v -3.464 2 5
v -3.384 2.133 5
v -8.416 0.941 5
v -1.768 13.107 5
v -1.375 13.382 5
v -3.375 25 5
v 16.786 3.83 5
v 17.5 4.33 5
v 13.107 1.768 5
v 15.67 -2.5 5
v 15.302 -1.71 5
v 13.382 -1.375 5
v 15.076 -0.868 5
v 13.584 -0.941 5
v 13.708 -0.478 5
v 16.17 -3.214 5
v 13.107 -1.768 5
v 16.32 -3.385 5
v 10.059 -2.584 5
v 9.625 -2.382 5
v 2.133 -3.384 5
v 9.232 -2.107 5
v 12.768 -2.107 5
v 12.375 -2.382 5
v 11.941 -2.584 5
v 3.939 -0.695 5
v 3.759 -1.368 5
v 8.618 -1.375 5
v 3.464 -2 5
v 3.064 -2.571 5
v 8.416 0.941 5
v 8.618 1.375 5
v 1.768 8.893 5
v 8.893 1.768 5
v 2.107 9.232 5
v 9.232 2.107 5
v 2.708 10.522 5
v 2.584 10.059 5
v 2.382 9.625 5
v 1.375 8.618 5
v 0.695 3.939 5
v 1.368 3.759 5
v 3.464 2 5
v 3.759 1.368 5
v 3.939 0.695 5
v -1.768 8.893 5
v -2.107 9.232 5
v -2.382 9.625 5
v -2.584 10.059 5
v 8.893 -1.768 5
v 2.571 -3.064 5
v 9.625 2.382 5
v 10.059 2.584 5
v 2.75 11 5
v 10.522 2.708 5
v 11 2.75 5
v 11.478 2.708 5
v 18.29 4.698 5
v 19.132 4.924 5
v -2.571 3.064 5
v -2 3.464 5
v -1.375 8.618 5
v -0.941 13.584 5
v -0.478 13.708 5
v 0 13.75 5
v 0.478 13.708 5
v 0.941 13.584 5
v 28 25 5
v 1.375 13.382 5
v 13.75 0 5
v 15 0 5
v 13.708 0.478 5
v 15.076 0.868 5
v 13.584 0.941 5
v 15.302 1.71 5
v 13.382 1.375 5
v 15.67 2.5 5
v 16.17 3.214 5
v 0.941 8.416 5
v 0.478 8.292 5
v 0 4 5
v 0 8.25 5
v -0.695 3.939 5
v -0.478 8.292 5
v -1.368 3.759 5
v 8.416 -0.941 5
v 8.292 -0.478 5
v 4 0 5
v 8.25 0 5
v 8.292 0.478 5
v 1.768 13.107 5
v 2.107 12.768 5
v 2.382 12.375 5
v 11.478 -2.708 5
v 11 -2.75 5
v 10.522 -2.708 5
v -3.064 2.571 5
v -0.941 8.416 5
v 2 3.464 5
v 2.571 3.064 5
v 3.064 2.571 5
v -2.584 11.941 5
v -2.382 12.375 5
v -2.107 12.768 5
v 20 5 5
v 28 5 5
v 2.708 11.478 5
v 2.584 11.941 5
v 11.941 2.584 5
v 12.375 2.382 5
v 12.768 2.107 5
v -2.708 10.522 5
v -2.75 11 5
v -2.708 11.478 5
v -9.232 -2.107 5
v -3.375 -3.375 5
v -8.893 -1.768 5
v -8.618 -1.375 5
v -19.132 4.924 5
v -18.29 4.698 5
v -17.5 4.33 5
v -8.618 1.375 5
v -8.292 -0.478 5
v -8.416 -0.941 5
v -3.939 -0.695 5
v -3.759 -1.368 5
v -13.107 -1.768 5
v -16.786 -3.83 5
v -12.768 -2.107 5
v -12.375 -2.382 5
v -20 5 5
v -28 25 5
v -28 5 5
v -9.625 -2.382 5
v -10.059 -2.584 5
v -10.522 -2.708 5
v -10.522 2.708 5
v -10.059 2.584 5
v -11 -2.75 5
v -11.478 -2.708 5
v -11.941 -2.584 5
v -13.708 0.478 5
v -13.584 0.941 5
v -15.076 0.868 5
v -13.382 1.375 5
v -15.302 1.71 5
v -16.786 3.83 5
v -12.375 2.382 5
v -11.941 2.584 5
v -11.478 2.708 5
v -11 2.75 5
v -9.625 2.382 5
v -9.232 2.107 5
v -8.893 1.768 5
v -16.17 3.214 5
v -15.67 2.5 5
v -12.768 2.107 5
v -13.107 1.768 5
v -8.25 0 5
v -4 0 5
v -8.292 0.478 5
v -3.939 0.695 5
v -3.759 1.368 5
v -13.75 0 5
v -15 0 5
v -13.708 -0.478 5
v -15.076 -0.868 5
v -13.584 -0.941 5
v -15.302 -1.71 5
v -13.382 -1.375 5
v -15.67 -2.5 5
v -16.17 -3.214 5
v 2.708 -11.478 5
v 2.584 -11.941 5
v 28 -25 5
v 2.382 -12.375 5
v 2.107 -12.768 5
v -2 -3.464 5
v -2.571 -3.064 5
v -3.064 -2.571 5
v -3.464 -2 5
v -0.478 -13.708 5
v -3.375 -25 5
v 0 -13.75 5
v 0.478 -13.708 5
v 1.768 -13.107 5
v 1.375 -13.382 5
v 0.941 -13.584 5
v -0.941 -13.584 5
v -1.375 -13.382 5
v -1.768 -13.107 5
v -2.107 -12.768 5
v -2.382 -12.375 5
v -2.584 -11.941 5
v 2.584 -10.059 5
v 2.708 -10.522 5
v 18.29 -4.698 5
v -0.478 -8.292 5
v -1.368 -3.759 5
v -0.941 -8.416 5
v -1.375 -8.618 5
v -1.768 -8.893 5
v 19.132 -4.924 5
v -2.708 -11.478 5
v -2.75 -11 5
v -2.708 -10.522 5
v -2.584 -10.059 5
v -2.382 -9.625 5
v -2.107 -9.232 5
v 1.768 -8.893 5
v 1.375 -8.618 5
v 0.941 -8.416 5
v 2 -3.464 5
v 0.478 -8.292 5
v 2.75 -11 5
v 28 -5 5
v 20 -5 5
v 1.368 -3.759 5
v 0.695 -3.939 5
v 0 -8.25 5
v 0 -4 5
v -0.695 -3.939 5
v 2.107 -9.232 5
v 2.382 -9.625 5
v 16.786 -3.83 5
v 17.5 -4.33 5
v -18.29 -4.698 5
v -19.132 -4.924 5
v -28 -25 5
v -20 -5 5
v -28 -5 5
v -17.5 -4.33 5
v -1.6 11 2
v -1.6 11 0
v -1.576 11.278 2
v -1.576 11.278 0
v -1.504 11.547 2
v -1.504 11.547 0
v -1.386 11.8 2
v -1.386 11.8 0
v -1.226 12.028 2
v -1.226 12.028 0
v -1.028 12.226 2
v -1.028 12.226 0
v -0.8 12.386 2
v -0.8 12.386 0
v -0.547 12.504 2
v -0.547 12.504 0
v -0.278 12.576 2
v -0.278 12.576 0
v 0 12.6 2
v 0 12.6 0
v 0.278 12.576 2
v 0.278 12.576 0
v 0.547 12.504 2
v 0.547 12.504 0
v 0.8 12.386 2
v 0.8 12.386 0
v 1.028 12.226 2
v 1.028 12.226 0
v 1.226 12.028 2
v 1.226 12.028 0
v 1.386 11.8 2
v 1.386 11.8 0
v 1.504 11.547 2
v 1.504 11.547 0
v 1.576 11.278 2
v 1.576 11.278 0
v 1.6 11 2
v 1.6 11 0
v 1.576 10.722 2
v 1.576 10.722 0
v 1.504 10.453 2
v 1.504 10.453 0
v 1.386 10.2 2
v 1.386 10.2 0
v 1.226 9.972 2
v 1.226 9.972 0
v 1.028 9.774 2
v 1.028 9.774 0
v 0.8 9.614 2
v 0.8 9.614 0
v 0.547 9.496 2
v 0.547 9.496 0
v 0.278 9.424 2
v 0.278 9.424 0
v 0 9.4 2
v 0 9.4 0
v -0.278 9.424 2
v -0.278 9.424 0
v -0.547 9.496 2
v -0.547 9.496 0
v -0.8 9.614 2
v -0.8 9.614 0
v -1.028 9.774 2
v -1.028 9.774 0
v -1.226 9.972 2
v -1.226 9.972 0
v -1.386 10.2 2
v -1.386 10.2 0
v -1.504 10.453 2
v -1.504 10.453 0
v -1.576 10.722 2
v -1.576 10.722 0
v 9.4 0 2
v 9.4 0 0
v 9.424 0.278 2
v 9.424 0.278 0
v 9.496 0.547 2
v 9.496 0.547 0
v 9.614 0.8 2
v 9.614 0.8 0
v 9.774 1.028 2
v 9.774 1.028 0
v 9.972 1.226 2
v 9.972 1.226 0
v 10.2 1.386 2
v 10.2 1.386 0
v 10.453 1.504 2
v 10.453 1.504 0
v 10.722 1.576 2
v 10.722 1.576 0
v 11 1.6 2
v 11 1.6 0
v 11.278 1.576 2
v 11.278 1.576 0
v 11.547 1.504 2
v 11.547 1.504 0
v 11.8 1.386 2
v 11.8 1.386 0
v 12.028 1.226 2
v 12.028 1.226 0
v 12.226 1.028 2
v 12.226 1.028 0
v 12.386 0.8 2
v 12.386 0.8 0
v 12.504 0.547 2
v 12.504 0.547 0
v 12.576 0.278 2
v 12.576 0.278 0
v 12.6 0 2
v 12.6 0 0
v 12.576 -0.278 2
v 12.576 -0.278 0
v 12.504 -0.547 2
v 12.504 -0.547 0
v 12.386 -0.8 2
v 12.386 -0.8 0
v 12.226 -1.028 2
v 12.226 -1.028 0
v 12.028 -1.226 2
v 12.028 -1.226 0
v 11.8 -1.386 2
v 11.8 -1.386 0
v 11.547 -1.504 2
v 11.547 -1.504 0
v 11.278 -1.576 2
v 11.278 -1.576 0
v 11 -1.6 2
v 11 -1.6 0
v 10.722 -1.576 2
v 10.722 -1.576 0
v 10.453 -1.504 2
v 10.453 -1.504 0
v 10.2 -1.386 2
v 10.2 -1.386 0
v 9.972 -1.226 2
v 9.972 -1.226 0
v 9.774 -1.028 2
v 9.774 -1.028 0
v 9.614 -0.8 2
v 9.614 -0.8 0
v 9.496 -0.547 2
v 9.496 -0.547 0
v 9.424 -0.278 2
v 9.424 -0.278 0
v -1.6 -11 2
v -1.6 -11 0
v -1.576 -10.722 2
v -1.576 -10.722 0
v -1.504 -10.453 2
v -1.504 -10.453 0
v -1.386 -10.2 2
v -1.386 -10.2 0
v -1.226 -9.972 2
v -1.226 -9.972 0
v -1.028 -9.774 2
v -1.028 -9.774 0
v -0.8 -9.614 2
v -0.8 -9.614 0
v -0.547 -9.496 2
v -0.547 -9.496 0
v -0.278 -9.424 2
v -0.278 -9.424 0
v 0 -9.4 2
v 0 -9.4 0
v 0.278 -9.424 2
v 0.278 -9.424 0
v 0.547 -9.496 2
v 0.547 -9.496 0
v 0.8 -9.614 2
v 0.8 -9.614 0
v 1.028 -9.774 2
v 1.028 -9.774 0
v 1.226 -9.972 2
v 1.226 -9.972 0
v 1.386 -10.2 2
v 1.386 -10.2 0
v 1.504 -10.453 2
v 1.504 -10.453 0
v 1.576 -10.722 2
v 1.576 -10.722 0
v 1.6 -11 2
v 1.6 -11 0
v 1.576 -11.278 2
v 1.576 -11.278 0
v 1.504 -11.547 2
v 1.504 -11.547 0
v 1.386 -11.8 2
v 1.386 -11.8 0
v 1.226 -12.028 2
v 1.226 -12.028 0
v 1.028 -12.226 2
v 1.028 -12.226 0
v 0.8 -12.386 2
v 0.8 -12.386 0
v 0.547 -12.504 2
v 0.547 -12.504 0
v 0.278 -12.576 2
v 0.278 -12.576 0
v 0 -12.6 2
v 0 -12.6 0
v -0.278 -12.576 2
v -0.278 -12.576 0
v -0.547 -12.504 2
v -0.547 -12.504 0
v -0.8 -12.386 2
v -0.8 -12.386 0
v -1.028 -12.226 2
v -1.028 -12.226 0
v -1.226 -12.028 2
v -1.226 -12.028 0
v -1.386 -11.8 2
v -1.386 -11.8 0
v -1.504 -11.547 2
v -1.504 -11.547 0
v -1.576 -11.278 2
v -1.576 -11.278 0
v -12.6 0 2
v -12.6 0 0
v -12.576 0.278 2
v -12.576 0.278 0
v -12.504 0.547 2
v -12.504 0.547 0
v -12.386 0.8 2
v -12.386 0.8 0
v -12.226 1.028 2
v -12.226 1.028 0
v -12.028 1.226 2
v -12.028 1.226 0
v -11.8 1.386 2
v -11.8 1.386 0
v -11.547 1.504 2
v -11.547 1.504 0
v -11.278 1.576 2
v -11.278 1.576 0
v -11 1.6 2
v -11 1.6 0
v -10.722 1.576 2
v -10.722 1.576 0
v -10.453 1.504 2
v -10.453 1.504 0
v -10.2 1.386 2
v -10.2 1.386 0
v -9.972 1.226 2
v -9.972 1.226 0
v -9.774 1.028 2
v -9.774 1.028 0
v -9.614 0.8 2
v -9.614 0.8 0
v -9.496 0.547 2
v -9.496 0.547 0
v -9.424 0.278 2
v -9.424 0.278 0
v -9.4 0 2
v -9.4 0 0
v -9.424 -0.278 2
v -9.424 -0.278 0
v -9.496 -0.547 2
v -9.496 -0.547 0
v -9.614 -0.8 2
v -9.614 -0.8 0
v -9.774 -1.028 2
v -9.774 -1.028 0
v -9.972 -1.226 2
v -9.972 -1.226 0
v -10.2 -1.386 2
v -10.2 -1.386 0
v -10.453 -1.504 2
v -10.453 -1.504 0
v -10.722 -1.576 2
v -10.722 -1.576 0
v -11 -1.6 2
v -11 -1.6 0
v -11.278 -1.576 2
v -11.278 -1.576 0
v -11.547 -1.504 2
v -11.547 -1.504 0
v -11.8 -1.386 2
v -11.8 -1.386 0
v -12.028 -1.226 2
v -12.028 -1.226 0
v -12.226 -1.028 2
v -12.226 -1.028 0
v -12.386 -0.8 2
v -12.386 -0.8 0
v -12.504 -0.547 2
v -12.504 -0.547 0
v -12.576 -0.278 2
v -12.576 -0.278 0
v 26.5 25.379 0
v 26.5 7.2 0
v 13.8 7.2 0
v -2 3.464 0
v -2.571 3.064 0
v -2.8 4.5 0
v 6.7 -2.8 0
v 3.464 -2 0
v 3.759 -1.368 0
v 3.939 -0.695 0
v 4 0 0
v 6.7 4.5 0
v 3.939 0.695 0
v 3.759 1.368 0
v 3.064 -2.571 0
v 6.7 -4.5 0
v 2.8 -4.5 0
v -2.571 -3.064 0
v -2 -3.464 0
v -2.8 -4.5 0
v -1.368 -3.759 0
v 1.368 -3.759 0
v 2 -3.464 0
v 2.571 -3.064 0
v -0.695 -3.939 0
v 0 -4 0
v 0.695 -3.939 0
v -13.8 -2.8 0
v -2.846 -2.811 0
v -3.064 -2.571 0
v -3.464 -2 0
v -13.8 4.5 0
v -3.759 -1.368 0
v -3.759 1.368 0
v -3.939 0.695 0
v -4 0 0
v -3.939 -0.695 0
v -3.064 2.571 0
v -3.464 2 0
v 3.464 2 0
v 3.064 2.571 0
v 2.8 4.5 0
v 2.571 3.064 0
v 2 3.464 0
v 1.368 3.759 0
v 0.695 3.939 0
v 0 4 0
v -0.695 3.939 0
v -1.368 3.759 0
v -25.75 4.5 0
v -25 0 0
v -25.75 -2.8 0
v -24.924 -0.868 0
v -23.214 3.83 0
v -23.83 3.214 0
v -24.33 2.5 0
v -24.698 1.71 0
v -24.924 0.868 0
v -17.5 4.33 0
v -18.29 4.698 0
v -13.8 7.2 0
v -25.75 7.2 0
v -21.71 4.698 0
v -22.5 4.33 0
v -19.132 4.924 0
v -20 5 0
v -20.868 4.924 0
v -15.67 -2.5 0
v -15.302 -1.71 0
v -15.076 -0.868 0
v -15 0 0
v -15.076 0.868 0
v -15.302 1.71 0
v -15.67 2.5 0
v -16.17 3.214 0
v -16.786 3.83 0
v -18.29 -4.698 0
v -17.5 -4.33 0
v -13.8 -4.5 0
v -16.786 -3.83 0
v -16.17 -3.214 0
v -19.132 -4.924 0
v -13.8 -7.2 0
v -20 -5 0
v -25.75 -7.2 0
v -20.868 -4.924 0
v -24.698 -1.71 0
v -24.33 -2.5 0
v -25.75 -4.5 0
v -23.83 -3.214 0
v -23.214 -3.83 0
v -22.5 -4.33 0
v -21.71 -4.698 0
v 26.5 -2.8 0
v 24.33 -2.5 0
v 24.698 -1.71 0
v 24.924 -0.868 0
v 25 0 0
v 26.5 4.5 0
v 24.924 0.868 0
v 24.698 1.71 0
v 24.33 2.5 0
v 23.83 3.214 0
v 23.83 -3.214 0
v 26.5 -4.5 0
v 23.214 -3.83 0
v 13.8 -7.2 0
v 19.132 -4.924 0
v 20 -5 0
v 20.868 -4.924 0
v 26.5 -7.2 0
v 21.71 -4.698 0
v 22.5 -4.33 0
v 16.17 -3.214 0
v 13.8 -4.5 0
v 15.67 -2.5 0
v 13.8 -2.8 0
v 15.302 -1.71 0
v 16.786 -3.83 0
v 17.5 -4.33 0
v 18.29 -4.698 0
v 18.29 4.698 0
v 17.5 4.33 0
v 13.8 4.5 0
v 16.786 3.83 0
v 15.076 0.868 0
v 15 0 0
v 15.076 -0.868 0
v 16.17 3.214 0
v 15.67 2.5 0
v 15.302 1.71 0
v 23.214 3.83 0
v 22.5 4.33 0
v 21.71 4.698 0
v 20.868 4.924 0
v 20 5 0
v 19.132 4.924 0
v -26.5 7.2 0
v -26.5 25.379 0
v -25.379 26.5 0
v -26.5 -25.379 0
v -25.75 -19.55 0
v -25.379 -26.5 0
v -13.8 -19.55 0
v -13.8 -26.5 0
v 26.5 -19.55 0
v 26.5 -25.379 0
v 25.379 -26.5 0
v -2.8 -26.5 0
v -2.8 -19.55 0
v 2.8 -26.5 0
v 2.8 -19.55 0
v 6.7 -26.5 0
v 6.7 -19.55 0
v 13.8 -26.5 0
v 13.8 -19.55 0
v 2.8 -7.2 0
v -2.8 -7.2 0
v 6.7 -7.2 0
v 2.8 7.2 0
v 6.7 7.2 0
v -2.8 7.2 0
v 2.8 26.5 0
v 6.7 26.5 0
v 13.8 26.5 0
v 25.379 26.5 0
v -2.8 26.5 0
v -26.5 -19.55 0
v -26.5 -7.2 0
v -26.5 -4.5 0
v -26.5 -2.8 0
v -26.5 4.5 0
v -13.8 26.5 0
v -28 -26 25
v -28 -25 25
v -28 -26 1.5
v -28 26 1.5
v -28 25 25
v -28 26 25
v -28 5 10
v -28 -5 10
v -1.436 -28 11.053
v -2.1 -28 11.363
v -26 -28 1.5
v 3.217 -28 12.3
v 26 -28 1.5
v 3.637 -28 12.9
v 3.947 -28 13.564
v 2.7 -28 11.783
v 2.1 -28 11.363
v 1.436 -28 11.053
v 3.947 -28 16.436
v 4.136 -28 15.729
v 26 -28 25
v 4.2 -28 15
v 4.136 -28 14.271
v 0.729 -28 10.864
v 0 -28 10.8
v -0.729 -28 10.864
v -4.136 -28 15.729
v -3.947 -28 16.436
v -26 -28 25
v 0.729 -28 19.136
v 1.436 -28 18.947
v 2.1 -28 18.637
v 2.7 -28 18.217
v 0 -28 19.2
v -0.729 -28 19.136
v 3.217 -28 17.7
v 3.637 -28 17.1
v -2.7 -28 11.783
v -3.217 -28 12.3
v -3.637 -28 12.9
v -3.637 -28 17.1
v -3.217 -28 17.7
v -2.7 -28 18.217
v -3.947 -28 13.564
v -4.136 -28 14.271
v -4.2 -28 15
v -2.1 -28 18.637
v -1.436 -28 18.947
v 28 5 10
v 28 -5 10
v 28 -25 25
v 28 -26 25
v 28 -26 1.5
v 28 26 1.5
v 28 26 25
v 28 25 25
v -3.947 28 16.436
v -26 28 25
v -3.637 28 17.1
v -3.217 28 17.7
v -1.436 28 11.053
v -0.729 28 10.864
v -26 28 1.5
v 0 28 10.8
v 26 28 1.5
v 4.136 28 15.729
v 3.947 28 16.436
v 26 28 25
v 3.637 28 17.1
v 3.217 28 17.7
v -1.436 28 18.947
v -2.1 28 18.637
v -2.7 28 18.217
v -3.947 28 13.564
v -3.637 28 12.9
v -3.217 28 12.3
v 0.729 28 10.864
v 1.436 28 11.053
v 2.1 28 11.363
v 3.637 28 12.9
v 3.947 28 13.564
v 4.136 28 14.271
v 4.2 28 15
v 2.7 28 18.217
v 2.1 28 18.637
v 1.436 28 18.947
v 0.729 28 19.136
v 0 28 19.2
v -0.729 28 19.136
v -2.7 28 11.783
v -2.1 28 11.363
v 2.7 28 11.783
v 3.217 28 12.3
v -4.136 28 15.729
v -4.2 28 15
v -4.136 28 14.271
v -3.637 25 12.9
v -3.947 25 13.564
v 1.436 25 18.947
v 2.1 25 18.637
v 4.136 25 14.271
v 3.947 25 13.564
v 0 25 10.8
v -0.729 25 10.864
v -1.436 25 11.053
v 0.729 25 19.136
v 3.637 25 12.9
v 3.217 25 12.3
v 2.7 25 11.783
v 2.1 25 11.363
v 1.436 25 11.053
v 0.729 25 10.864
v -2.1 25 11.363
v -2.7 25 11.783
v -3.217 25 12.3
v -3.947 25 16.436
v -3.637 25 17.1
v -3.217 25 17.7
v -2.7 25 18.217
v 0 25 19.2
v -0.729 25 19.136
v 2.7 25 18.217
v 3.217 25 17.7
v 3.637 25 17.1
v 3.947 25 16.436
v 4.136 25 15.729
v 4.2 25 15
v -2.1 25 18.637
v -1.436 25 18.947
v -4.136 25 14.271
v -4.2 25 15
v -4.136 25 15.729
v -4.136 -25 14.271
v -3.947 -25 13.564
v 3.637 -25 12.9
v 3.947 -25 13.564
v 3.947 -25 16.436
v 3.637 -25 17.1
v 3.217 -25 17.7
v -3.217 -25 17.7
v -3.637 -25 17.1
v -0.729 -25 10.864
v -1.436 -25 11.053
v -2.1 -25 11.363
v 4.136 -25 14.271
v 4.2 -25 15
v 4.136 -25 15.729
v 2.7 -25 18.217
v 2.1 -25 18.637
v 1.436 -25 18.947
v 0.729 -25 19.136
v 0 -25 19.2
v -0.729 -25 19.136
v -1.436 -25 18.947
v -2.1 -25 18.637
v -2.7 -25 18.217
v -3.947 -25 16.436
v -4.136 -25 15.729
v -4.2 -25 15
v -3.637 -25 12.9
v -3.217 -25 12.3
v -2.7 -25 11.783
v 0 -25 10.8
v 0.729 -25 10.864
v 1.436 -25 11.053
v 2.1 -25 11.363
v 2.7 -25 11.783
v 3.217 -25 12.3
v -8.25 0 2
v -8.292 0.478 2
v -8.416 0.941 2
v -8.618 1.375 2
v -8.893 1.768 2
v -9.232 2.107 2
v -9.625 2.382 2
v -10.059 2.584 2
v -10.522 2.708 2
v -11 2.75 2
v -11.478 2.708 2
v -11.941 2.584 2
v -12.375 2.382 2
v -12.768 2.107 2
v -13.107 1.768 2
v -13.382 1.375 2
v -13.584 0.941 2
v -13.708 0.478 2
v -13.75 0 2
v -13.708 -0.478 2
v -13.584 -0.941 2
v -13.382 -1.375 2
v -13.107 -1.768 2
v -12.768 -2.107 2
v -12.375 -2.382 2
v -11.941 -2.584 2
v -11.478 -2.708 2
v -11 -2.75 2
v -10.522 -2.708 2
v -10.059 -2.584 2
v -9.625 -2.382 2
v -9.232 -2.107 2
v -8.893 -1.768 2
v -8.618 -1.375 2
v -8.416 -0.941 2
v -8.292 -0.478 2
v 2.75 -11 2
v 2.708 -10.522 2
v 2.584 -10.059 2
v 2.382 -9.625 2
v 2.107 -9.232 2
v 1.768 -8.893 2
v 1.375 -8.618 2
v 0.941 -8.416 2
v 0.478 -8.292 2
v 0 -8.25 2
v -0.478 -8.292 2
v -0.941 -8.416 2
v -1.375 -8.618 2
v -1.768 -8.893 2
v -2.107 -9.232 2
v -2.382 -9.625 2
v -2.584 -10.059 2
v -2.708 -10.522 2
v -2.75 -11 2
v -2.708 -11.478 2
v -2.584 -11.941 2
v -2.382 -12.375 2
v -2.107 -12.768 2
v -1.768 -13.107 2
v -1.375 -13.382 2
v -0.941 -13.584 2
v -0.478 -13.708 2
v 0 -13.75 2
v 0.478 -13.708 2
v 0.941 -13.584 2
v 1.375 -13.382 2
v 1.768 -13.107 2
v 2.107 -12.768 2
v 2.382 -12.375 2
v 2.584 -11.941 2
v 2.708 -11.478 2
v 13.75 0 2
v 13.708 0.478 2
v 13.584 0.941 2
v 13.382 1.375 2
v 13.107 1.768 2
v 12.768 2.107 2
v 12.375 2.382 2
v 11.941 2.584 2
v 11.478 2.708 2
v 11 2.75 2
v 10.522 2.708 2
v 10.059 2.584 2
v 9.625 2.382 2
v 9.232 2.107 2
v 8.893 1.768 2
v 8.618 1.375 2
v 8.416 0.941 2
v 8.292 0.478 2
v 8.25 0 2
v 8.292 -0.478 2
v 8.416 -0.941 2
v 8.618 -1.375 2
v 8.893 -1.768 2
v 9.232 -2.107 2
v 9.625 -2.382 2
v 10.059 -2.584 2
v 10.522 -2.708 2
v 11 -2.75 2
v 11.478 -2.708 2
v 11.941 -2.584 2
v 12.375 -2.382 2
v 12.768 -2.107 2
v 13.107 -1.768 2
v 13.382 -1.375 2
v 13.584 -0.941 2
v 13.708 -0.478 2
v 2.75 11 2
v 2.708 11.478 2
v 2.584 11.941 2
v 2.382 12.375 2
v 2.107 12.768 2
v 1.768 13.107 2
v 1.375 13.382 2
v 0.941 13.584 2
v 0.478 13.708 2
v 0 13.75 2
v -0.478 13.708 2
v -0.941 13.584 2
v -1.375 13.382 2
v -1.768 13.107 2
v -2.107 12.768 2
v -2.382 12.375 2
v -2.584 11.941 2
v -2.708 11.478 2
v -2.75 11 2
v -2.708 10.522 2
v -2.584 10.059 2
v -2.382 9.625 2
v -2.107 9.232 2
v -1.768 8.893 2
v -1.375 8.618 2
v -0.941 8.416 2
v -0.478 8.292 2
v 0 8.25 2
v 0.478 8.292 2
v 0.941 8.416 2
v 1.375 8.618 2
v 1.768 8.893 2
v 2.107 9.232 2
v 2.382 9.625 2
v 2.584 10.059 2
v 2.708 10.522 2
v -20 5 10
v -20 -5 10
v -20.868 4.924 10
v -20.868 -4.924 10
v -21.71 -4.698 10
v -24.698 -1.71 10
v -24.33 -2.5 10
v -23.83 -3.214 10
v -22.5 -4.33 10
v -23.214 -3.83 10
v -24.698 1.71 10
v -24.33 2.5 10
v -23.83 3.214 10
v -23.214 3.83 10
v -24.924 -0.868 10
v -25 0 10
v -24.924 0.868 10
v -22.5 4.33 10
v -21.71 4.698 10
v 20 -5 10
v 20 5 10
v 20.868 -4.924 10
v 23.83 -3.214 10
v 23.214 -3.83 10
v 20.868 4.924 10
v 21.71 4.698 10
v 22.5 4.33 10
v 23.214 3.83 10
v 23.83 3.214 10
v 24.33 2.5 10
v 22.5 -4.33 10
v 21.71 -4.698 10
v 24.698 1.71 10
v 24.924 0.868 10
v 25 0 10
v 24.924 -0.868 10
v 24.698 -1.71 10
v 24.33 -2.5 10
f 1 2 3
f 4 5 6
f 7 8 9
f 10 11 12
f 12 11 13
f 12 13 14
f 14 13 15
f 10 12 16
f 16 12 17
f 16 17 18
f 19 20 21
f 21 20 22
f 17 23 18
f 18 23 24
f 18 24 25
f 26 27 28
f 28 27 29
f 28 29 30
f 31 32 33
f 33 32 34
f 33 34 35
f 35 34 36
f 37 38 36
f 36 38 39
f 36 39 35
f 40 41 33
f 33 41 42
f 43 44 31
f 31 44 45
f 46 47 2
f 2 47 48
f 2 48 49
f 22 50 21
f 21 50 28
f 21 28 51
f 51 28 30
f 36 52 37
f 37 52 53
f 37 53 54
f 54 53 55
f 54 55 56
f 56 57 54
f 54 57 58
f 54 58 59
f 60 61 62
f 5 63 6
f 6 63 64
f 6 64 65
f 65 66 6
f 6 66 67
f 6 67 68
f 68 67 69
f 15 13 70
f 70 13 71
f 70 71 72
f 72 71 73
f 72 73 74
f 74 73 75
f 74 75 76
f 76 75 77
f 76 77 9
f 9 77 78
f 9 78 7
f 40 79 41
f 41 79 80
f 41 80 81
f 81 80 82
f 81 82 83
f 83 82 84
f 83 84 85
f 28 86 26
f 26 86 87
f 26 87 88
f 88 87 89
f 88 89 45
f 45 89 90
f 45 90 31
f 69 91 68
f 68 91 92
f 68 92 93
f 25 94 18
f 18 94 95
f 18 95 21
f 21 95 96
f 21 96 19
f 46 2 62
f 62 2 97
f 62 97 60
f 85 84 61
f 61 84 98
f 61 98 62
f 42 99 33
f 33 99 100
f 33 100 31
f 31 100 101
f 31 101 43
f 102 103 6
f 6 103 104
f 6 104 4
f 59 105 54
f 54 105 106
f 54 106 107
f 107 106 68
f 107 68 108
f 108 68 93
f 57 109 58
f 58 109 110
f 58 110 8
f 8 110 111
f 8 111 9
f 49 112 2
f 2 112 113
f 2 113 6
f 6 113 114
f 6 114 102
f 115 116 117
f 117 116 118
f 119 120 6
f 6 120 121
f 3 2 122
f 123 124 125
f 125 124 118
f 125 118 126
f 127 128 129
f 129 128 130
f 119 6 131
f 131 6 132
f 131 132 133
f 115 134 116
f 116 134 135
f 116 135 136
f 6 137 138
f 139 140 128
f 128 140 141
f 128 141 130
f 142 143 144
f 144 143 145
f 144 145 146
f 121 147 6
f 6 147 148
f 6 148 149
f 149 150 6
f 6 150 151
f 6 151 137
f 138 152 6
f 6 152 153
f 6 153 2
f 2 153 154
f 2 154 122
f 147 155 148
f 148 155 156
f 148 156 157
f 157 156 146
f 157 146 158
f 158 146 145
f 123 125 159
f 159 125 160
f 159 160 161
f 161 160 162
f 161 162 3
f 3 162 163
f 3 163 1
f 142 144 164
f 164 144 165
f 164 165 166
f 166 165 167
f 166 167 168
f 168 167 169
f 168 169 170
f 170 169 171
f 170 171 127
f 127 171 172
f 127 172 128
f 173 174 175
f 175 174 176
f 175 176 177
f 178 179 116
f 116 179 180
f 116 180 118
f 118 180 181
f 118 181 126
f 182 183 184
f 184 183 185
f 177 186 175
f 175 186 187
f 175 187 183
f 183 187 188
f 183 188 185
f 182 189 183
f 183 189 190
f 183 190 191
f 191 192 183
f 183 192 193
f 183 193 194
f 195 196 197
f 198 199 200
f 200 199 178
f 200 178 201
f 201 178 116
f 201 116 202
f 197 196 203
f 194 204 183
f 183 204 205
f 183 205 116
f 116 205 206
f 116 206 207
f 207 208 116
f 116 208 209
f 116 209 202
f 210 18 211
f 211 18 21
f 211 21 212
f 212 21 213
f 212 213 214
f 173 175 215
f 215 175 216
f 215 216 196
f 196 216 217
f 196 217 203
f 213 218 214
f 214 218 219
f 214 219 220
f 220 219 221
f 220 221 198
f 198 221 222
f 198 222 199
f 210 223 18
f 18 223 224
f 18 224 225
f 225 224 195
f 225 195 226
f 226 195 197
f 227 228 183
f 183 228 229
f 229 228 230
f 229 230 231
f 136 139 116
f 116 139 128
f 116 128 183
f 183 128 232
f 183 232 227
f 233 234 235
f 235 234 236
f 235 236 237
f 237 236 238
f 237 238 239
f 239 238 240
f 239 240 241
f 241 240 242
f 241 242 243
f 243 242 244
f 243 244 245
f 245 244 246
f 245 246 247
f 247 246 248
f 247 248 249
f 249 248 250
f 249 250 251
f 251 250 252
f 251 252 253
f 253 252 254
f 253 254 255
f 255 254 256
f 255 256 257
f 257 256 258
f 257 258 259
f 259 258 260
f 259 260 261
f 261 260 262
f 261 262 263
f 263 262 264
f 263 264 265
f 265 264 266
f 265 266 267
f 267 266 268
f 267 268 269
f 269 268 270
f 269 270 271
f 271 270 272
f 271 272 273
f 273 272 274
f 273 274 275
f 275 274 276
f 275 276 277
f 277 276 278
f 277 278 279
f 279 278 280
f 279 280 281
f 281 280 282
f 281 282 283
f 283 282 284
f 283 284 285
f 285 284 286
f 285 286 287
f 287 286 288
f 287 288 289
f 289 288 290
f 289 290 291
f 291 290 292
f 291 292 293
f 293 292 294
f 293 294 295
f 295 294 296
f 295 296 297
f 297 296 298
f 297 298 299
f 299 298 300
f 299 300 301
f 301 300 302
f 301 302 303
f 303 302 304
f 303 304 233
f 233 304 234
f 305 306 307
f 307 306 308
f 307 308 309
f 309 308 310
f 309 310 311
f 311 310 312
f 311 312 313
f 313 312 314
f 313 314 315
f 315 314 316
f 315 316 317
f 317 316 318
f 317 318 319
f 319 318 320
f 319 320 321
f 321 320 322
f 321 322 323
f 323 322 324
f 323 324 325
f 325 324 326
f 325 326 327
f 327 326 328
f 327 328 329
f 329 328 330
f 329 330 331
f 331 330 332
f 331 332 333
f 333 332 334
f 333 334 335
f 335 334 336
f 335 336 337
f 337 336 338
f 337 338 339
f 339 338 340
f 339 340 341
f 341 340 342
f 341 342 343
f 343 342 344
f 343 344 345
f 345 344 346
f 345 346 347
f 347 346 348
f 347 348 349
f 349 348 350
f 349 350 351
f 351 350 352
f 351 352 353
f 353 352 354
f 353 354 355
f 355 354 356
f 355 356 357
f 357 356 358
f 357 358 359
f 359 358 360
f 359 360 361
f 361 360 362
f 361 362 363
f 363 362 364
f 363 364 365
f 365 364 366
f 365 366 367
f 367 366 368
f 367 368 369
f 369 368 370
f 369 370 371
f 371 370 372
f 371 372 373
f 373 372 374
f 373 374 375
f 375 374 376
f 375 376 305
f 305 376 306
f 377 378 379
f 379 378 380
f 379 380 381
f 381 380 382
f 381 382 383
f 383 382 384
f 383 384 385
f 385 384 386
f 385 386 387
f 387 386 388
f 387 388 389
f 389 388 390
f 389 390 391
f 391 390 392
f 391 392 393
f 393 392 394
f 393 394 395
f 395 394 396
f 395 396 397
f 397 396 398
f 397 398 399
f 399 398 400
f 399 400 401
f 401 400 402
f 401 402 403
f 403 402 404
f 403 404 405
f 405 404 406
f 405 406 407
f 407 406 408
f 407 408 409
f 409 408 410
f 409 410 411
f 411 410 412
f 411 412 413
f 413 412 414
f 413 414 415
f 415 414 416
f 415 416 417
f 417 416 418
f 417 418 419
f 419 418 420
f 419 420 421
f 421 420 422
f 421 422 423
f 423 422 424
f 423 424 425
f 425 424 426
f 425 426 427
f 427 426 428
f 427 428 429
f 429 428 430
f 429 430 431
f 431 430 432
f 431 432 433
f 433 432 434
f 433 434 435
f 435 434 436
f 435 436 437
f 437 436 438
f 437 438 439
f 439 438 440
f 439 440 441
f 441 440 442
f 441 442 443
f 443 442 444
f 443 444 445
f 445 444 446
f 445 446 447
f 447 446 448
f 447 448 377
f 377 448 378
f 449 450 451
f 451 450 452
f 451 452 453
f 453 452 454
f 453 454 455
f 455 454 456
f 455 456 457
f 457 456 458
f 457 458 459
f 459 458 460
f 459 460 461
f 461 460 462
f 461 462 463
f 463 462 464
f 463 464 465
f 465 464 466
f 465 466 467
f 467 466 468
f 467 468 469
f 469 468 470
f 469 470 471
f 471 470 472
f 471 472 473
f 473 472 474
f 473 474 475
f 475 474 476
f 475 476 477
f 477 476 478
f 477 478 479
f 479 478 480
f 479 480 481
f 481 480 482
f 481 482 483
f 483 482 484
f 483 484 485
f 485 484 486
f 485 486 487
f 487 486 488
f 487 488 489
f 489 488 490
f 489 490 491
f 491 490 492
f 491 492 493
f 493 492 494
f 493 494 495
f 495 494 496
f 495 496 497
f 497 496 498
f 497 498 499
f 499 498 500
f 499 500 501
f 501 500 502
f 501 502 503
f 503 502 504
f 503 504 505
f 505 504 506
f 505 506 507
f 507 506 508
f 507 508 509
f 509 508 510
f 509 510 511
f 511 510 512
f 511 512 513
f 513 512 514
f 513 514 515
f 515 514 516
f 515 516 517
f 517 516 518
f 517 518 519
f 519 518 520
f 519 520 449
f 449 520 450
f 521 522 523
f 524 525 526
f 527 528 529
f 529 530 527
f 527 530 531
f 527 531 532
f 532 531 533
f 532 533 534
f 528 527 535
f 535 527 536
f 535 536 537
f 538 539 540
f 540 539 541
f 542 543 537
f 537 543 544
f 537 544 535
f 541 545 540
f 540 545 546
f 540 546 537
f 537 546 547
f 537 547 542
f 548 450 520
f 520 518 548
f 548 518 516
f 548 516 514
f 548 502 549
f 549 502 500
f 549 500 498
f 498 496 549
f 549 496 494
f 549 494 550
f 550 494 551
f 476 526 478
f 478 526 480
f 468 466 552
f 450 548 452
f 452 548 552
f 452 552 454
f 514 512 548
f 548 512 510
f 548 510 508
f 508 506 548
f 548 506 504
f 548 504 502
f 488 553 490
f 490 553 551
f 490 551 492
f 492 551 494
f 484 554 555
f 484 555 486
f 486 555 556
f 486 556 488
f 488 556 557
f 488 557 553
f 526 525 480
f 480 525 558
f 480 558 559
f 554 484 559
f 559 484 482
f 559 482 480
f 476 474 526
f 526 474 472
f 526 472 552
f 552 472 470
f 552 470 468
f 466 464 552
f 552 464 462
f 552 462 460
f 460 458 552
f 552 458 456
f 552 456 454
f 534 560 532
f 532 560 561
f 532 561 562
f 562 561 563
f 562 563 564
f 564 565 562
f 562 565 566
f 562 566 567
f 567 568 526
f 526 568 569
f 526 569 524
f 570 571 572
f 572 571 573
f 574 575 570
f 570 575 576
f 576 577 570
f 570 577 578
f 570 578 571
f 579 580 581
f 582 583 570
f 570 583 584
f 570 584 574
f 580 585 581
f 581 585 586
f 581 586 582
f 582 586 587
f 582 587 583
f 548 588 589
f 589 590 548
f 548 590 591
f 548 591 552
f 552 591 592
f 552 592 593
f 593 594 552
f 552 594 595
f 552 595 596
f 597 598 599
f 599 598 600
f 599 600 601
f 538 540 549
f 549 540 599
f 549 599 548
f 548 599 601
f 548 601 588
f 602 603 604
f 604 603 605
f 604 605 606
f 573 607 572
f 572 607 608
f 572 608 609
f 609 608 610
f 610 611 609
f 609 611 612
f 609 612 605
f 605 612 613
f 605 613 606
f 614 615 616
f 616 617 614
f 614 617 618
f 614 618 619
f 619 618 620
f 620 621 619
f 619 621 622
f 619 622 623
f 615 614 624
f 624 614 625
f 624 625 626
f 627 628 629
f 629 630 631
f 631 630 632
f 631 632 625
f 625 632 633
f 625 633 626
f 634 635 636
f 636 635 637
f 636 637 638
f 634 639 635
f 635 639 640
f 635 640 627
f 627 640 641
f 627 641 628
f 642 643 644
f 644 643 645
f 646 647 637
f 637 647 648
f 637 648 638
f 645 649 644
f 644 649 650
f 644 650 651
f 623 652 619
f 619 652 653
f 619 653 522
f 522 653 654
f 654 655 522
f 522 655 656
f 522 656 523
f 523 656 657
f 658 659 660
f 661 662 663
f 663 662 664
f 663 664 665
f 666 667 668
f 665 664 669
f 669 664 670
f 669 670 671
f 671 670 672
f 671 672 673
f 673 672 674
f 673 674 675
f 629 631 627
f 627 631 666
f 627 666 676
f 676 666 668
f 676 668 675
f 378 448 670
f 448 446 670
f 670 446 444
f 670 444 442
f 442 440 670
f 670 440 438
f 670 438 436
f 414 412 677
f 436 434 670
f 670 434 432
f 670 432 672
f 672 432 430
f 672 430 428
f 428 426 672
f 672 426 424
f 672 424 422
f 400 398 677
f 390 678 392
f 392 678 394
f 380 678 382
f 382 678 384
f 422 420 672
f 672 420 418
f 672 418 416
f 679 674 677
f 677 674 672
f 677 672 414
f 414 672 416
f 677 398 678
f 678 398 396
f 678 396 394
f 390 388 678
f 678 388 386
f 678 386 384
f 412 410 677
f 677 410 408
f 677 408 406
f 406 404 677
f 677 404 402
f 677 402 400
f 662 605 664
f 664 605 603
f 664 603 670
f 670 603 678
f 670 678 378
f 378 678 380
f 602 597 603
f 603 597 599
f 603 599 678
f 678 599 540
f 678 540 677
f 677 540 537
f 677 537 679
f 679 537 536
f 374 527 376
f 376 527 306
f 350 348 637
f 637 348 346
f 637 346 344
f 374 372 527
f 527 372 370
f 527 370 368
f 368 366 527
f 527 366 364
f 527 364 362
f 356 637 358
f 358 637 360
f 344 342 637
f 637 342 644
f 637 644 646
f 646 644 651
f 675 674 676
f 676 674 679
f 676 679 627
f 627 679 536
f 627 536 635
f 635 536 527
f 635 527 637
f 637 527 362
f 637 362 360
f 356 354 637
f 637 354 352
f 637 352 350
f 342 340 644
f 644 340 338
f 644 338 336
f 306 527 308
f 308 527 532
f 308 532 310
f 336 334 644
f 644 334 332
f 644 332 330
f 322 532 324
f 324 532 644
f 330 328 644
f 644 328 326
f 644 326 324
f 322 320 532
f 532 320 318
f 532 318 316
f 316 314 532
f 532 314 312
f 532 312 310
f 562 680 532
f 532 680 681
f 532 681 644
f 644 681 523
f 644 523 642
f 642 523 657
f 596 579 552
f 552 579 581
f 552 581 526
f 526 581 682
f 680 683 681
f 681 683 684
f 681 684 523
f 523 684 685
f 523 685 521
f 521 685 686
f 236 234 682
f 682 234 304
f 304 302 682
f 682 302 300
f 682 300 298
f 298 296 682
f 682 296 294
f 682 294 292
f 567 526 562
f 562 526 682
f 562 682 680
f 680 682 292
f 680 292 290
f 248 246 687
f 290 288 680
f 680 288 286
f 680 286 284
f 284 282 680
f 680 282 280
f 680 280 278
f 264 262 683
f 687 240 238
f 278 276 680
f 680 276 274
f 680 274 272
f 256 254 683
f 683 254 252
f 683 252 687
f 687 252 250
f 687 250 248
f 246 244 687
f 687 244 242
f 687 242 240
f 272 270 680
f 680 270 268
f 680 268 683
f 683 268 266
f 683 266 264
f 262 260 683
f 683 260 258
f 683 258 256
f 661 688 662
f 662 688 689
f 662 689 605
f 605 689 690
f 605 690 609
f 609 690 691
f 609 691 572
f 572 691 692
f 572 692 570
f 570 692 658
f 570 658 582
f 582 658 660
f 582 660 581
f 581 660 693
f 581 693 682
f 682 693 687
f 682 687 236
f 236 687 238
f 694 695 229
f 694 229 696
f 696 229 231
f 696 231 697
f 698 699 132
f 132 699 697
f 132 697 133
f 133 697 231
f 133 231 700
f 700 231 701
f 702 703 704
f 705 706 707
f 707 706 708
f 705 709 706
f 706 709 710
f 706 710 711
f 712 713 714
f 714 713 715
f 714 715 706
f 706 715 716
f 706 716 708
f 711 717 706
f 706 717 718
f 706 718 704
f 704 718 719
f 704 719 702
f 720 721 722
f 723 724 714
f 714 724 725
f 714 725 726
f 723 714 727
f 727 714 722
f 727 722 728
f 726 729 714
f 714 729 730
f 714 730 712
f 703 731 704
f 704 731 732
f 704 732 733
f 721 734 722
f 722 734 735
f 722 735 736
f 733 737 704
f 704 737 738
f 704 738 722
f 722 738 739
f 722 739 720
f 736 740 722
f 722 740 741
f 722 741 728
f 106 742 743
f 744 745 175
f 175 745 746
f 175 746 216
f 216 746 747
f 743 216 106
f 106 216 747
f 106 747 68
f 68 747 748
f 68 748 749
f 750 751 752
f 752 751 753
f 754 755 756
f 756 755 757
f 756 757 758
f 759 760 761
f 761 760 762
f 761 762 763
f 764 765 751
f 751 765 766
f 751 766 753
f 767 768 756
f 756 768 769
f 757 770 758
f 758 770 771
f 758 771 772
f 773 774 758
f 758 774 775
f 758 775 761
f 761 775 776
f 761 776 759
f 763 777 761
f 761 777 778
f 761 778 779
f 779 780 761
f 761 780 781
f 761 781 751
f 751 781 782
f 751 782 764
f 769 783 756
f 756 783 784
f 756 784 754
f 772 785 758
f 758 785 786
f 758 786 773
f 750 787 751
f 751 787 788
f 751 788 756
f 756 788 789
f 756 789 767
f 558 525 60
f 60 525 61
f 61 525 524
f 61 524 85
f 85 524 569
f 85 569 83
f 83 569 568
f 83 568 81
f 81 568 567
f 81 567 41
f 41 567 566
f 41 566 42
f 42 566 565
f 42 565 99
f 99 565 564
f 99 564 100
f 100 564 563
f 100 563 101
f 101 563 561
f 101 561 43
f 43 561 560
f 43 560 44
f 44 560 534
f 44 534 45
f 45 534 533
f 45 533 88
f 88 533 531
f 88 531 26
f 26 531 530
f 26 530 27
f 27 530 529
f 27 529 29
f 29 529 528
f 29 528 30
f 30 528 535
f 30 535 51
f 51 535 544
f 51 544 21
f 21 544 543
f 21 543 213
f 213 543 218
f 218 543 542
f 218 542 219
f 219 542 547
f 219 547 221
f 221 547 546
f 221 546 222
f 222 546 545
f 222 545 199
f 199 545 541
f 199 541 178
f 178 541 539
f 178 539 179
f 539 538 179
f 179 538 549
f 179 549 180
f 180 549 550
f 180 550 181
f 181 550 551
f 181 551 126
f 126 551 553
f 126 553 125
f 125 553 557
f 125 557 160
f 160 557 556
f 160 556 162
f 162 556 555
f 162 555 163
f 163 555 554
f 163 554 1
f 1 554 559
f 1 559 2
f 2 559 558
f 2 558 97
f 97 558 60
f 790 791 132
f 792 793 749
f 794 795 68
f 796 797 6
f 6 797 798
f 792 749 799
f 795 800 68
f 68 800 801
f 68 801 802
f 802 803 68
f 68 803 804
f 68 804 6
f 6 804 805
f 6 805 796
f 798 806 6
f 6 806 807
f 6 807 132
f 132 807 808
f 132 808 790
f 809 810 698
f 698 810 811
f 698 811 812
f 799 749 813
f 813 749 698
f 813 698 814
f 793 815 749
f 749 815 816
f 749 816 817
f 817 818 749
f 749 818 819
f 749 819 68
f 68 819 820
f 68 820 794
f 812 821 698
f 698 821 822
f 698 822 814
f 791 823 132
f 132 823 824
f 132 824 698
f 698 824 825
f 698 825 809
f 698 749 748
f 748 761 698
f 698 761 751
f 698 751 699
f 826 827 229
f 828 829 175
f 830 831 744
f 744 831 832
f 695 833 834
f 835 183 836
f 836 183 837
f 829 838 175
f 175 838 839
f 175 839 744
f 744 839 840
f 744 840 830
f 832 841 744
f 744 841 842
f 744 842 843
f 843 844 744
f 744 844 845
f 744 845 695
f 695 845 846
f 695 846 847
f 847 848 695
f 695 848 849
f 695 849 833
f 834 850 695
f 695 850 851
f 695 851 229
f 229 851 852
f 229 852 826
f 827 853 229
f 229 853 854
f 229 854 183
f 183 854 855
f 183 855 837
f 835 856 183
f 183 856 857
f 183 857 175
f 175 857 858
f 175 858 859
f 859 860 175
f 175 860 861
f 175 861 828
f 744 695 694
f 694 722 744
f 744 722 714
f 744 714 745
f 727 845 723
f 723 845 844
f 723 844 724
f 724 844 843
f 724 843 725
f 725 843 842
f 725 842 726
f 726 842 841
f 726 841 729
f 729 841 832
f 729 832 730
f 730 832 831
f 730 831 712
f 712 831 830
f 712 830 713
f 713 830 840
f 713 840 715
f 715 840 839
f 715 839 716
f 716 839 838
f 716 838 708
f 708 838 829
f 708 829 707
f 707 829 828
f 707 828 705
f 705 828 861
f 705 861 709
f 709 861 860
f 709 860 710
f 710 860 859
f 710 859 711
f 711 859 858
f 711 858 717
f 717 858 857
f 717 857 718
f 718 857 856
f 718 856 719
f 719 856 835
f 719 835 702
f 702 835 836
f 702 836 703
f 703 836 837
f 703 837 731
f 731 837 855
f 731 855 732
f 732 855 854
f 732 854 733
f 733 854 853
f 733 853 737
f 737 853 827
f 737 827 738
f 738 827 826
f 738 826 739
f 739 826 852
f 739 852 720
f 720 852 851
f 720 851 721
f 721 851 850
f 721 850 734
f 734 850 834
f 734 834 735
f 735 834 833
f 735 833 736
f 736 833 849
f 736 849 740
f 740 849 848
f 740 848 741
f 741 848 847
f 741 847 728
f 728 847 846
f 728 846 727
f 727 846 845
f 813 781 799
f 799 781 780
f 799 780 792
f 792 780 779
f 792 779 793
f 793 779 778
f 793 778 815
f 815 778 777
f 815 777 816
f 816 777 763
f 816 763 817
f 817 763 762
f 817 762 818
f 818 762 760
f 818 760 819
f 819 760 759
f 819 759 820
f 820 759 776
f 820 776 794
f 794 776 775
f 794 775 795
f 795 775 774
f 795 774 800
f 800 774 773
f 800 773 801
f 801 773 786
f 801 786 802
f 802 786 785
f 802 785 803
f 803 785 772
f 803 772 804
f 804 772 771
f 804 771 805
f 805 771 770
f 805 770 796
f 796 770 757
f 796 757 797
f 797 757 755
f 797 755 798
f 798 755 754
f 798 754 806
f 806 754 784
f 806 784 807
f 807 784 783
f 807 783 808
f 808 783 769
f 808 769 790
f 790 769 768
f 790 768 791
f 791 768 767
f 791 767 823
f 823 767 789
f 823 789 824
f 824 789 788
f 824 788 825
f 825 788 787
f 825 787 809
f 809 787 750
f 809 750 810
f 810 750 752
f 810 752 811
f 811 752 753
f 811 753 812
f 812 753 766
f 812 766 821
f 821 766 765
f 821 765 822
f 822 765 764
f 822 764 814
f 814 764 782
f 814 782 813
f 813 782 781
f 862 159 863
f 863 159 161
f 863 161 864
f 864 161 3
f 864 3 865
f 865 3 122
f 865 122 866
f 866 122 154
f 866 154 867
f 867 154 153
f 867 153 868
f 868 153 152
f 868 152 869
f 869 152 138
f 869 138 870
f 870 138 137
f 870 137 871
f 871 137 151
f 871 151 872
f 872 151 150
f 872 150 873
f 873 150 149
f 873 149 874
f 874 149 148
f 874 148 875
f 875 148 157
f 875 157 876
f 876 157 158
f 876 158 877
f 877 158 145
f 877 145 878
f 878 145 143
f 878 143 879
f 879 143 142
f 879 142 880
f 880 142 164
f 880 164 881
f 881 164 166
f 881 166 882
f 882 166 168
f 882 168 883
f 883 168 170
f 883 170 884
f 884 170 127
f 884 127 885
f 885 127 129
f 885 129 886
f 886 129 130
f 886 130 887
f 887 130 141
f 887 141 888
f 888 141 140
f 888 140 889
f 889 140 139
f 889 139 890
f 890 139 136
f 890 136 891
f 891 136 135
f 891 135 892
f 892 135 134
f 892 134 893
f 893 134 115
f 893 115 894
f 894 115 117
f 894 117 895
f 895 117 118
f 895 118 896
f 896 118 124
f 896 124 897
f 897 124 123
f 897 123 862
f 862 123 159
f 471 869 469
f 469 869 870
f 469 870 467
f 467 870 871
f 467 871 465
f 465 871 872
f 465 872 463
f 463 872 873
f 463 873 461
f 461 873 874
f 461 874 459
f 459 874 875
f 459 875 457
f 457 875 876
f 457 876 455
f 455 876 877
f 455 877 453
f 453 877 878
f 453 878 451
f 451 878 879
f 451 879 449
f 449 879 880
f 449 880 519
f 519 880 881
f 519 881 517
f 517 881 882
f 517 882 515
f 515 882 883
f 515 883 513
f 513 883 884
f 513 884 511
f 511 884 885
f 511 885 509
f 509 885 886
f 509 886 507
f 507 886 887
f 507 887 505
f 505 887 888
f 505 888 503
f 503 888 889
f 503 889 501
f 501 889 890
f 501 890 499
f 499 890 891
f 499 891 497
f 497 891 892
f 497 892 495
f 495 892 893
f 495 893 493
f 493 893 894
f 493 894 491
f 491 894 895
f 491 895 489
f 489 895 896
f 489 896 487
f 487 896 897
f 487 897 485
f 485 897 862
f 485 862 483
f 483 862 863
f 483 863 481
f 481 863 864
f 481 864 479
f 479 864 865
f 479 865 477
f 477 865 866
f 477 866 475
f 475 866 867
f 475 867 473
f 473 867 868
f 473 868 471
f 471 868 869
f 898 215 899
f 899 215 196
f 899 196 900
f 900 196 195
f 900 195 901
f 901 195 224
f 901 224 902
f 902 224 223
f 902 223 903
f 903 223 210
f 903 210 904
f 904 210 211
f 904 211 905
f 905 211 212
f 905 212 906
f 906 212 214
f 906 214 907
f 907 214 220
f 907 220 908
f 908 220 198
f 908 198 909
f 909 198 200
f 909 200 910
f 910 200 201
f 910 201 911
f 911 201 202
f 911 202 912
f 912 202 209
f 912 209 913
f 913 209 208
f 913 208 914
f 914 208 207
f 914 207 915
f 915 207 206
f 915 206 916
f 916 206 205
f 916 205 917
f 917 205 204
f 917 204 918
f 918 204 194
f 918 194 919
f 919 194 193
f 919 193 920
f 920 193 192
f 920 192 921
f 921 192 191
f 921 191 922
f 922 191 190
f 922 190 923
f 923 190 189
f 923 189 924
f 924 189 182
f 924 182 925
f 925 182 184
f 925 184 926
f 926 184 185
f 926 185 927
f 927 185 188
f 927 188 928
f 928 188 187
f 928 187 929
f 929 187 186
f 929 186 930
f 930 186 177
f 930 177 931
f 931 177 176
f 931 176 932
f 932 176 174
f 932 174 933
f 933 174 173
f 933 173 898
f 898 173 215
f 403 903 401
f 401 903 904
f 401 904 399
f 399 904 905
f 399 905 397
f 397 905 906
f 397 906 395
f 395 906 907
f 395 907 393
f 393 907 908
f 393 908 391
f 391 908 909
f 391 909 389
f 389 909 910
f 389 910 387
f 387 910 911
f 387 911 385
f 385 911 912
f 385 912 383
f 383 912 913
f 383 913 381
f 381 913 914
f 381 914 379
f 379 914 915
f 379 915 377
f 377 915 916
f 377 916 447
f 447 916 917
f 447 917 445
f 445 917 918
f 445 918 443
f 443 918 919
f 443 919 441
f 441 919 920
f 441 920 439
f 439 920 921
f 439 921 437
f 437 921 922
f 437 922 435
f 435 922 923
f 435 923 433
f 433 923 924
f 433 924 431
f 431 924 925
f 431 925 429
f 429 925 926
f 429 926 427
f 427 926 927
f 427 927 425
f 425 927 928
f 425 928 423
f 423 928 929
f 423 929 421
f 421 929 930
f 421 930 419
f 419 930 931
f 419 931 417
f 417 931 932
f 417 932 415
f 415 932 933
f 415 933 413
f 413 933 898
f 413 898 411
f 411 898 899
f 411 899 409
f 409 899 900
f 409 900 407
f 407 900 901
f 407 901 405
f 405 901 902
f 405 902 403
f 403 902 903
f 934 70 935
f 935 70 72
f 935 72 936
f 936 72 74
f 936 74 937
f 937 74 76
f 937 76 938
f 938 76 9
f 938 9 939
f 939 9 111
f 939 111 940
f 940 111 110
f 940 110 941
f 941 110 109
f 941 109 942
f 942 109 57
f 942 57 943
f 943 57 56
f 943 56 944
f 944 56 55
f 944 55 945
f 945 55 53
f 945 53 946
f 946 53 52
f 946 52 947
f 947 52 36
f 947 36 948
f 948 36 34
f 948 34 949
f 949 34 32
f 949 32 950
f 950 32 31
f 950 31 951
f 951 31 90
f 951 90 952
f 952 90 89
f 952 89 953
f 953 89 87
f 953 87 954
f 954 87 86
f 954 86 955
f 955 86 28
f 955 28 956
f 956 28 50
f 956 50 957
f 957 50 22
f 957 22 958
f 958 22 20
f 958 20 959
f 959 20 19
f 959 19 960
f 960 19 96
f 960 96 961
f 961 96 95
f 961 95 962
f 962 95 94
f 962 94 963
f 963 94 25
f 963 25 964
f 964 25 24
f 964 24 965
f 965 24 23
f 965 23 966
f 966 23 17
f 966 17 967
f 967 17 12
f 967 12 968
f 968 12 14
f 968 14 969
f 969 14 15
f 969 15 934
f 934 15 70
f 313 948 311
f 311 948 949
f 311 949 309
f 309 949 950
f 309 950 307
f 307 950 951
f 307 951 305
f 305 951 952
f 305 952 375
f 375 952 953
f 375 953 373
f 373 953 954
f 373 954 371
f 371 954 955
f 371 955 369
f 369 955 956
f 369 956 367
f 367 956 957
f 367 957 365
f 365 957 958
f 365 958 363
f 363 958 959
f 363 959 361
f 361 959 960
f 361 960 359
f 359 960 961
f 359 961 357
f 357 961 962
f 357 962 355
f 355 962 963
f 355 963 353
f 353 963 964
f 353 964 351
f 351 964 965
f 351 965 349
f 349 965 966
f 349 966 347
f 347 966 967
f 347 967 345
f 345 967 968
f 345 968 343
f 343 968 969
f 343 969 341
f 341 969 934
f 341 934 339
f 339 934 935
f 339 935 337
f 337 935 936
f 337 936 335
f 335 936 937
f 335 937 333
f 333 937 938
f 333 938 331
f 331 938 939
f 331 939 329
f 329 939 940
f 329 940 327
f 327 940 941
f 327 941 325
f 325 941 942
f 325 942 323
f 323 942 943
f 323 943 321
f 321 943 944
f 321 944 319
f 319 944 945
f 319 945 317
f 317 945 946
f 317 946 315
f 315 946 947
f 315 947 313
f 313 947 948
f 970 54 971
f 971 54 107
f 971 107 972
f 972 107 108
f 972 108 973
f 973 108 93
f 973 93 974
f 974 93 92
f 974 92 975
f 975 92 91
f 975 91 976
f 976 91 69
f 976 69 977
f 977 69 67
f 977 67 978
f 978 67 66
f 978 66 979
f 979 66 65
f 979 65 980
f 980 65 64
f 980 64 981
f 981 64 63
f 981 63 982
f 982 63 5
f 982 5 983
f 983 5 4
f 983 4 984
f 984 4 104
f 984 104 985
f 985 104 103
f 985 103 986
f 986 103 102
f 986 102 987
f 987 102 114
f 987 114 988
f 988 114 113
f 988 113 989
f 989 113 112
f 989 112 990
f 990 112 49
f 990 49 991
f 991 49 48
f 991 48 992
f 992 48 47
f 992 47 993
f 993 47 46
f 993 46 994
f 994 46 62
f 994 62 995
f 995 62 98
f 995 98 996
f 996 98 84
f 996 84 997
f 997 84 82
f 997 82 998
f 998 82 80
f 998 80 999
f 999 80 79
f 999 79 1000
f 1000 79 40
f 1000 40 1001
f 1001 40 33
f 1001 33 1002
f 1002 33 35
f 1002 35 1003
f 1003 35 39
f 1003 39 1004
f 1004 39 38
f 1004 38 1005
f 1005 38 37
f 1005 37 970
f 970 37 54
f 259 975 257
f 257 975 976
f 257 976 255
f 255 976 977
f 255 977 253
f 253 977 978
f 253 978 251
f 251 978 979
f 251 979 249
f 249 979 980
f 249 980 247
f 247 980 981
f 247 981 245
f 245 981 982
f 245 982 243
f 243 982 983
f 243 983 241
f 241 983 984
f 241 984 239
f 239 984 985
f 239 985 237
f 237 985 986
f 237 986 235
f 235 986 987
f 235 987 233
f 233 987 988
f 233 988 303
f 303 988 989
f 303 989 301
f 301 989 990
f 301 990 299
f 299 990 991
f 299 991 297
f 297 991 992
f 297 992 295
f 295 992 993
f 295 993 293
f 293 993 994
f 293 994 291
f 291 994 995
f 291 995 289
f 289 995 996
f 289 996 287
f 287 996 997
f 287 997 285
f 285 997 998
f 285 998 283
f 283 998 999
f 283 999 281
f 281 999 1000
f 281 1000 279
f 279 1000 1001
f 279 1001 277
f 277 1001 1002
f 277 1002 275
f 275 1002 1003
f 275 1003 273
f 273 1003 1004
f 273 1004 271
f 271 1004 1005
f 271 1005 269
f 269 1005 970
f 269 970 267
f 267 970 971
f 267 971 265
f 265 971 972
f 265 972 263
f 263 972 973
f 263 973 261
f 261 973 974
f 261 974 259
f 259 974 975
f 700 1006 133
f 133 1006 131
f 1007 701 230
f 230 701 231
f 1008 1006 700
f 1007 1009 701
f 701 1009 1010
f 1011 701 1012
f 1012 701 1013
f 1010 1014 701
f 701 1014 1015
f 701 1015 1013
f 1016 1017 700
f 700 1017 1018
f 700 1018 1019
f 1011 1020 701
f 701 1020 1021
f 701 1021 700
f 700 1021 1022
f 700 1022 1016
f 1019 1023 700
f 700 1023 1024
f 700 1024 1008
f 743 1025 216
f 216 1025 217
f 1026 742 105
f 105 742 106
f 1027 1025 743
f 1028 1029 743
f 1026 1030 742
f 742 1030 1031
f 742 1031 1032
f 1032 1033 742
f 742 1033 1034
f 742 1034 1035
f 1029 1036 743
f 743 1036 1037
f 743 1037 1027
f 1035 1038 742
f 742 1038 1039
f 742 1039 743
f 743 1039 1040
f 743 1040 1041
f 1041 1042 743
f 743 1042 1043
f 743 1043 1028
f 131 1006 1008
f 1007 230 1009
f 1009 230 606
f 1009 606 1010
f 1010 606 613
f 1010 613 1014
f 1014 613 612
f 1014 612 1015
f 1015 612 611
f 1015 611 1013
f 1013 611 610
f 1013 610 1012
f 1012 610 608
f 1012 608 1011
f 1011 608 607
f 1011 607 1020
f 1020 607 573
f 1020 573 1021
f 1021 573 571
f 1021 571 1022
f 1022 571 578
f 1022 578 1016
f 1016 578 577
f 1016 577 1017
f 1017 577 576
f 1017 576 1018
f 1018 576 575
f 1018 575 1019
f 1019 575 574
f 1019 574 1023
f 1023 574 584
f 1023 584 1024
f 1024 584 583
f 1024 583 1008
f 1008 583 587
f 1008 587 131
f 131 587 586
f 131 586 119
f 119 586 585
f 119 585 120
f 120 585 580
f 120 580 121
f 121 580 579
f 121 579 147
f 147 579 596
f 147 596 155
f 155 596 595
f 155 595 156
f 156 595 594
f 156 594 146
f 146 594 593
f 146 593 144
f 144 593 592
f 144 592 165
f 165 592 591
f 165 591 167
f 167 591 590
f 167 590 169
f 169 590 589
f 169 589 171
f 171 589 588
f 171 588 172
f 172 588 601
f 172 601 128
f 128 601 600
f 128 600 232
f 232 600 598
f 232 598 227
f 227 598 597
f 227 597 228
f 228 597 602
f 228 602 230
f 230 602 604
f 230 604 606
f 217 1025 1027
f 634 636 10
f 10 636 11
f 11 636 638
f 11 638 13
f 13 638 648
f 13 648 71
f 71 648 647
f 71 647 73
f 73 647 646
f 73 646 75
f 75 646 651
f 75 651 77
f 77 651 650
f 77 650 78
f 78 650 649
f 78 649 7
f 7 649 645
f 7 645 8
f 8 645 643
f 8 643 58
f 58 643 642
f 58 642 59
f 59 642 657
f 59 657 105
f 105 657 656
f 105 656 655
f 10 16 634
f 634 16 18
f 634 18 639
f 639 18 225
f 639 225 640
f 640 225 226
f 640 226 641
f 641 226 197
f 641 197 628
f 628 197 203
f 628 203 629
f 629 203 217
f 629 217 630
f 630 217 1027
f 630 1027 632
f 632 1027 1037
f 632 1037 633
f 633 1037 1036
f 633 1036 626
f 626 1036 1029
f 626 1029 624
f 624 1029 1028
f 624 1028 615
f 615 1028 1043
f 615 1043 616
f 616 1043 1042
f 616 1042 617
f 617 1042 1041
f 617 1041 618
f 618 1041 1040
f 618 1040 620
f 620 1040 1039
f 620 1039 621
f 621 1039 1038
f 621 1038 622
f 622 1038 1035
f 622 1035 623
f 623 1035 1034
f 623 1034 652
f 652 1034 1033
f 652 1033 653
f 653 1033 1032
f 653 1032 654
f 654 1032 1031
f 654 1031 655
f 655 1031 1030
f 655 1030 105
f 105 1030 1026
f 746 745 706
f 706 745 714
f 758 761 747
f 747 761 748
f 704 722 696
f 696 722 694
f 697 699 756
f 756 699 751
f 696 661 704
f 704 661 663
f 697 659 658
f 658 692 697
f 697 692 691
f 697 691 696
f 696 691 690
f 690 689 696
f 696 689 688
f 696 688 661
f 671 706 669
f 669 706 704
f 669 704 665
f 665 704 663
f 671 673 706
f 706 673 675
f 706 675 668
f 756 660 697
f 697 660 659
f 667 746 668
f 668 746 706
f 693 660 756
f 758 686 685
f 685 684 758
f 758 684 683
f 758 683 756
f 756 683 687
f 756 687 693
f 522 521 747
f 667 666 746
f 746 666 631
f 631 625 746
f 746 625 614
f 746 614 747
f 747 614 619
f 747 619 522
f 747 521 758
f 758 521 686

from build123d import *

# Parameters (mm, degrees)
CROQUIS1_W              = 56
CROQUIS1_H              = 56
CROQUIS1_R              = 4
CROQUIS1_R_2            = 1.6
SALIENTE_EXTRUIR1_DEPTH = 5
CROQUIS2_W              = 56
CROQUIS2_H              = 3
SALIENTE_EXTRUIR2_DEPTH = 20
CROQUIS3_R              = 4.2
CORTAR_EXTRUIR1_DEPTH   = 68.416615163
CROQUIS4_R              = 2.75
CORTAR_EXTRUIR2_DEPTH   = 3
CROQUIS7_W              = 8
CROQUIS7_H              = 10
SALIENTE_EXTRUIR3_DEPTH = 5
CROQUIS5_R              = 5
CORTAR_EXTRUIR3_DEPTH   = 47.829477896
CHAFL_N1_SIZE           = 2
CHAFL_N2_SIZE           = 1.5


with BuildPart() as part:
    # Croquis1 → Saliente-Extruir1 (new body)
    with BuildSketch(Plane.XY):
        Rectangle(CROQUIS1_W, CROQUIS1_H)
        Circle(CROQUIS1_R, mode=Mode.SUBTRACT)
        with Locations((0, 11)):
            Circle(CROQUIS1_R_2, mode=Mode.SUBTRACT)
        with Locations((11, 0)):
            Circle(CROQUIS1_R_2, mode=Mode.SUBTRACT)
        with Locations((0, -11)):
            Circle(CROQUIS1_R_2, mode=Mode.SUBTRACT)
        with Locations((-11, 0)):
            Circle(CROQUIS1_R_2, mode=Mode.SUBTRACT)
    extrude(amount=SALIENTE_EXTRUIR1_DEPTH)

    # Croquis2 → Saliente-Extruir2 (add)
    with BuildSketch(Plane.XY.offset(5)):
        with Locations((0, 26.5)):
            Rectangle(CROQUIS2_W, CROQUIS2_H)
        with Locations((0, -26.5)):
            Rectangle(CROQUIS2_W, CROQUIS2_H)
    extrude(amount=SALIENTE_EXTRUIR2_DEPTH)

    # Croquis3 → Cortar-Extruir1 (cut, through all)
    with BuildSketch(Plane(origin=(0, 28, 0), x_dir=(1, 0, 0), z_dir=(0, 1, 0))):
        with Locations(Location((0, -15, 0), (0, 0, 270))):
            Circle(CROQUIS3_R)
    extrude(amount=-CORTAR_EXTRUIR1_DEPTH, mode=Mode.SUBTRACT)

    # Croquis4 → Cortar-Extruir2 (cut)
    with BuildSketch(Plane.XY.offset(5)):
        with Locations((-11, 0)):
            Circle(CROQUIS4_R)
        with Locations((0, 11)):
            Circle(CROQUIS4_R)
        with Locations((11, 0)):
            Circle(CROQUIS4_R)
        with Locations((0, -11)):
            Circle(CROQUIS4_R)
    extrude(amount=-CORTAR_EXTRUIR2_DEPTH, mode=Mode.SUBTRACT)

    # Croquis7 → Saliente-Extruir3 (add)
    with BuildSketch(Plane.XY.offset(5)):
        with Locations((-24, 0)):
            Rectangle(CROQUIS7_W, CROQUIS7_H)
    saliente_extruir3 = extrude(amount=SALIENTE_EXTRUIR3_DEPTH)

    # Simetría2: Saliente-Extruir3 across plane
    add(saliente_extruir3.mirror(Plane(origin=(0, 0, 0), x_dir=(0, 0, 1), z_dir=(1, 0, 0))))

    # Croquis5 → Cortar-Extruir3 (cut, through all)
    with BuildSketch(Plane(origin=(0, 0, 0), x_dir=(-1, 0, 0), z_dir=(0, 0, -1))):
        with Locations((20, 0)):
            Circle(CROQUIS5_R)
    cortar_extruir3 = extrude(amount=-CORTAR_EXTRUIR3_DEPTH, mode=Mode.SUBTRACT)

    # Simetría1: Cortar-Extruir3 across plane
    add(cortar_extruir3.mirror(Plane(origin=(0, 0, 0), x_dir=(0, 0, 1), z_dir=(1, 0, 0))), mode=Mode.SUBTRACT)

    # Chaflán1
    chafl_n1_edges = [part.edges().sort_by_distance(p)[0] for p in [
        (-28, 28, 12.5),
        (28, 28, 12.5),
        (28, -28, 12.5),
        (-28, -28, 12.5),
    ]]
    chamfer(chafl_n1_edges, length=CHAFL_N1_SIZE)

    # Chaflán2
    chafl_n2_edges = [part.edges().sort_by_distance(p)[0] for p in [
        (28, 0, 0),
        (-28, 0, 0),
        (0, 28, 0),
        (0, -28, 0),
        (-27, 27, 0),
        (-27, -27, 0),
        (27, 27, 0),
        (27, -27, 0),
    ]]
    chamfer(chafl_n2_edges, length=CHAFL_N2_SIZE)


solid = part.part
